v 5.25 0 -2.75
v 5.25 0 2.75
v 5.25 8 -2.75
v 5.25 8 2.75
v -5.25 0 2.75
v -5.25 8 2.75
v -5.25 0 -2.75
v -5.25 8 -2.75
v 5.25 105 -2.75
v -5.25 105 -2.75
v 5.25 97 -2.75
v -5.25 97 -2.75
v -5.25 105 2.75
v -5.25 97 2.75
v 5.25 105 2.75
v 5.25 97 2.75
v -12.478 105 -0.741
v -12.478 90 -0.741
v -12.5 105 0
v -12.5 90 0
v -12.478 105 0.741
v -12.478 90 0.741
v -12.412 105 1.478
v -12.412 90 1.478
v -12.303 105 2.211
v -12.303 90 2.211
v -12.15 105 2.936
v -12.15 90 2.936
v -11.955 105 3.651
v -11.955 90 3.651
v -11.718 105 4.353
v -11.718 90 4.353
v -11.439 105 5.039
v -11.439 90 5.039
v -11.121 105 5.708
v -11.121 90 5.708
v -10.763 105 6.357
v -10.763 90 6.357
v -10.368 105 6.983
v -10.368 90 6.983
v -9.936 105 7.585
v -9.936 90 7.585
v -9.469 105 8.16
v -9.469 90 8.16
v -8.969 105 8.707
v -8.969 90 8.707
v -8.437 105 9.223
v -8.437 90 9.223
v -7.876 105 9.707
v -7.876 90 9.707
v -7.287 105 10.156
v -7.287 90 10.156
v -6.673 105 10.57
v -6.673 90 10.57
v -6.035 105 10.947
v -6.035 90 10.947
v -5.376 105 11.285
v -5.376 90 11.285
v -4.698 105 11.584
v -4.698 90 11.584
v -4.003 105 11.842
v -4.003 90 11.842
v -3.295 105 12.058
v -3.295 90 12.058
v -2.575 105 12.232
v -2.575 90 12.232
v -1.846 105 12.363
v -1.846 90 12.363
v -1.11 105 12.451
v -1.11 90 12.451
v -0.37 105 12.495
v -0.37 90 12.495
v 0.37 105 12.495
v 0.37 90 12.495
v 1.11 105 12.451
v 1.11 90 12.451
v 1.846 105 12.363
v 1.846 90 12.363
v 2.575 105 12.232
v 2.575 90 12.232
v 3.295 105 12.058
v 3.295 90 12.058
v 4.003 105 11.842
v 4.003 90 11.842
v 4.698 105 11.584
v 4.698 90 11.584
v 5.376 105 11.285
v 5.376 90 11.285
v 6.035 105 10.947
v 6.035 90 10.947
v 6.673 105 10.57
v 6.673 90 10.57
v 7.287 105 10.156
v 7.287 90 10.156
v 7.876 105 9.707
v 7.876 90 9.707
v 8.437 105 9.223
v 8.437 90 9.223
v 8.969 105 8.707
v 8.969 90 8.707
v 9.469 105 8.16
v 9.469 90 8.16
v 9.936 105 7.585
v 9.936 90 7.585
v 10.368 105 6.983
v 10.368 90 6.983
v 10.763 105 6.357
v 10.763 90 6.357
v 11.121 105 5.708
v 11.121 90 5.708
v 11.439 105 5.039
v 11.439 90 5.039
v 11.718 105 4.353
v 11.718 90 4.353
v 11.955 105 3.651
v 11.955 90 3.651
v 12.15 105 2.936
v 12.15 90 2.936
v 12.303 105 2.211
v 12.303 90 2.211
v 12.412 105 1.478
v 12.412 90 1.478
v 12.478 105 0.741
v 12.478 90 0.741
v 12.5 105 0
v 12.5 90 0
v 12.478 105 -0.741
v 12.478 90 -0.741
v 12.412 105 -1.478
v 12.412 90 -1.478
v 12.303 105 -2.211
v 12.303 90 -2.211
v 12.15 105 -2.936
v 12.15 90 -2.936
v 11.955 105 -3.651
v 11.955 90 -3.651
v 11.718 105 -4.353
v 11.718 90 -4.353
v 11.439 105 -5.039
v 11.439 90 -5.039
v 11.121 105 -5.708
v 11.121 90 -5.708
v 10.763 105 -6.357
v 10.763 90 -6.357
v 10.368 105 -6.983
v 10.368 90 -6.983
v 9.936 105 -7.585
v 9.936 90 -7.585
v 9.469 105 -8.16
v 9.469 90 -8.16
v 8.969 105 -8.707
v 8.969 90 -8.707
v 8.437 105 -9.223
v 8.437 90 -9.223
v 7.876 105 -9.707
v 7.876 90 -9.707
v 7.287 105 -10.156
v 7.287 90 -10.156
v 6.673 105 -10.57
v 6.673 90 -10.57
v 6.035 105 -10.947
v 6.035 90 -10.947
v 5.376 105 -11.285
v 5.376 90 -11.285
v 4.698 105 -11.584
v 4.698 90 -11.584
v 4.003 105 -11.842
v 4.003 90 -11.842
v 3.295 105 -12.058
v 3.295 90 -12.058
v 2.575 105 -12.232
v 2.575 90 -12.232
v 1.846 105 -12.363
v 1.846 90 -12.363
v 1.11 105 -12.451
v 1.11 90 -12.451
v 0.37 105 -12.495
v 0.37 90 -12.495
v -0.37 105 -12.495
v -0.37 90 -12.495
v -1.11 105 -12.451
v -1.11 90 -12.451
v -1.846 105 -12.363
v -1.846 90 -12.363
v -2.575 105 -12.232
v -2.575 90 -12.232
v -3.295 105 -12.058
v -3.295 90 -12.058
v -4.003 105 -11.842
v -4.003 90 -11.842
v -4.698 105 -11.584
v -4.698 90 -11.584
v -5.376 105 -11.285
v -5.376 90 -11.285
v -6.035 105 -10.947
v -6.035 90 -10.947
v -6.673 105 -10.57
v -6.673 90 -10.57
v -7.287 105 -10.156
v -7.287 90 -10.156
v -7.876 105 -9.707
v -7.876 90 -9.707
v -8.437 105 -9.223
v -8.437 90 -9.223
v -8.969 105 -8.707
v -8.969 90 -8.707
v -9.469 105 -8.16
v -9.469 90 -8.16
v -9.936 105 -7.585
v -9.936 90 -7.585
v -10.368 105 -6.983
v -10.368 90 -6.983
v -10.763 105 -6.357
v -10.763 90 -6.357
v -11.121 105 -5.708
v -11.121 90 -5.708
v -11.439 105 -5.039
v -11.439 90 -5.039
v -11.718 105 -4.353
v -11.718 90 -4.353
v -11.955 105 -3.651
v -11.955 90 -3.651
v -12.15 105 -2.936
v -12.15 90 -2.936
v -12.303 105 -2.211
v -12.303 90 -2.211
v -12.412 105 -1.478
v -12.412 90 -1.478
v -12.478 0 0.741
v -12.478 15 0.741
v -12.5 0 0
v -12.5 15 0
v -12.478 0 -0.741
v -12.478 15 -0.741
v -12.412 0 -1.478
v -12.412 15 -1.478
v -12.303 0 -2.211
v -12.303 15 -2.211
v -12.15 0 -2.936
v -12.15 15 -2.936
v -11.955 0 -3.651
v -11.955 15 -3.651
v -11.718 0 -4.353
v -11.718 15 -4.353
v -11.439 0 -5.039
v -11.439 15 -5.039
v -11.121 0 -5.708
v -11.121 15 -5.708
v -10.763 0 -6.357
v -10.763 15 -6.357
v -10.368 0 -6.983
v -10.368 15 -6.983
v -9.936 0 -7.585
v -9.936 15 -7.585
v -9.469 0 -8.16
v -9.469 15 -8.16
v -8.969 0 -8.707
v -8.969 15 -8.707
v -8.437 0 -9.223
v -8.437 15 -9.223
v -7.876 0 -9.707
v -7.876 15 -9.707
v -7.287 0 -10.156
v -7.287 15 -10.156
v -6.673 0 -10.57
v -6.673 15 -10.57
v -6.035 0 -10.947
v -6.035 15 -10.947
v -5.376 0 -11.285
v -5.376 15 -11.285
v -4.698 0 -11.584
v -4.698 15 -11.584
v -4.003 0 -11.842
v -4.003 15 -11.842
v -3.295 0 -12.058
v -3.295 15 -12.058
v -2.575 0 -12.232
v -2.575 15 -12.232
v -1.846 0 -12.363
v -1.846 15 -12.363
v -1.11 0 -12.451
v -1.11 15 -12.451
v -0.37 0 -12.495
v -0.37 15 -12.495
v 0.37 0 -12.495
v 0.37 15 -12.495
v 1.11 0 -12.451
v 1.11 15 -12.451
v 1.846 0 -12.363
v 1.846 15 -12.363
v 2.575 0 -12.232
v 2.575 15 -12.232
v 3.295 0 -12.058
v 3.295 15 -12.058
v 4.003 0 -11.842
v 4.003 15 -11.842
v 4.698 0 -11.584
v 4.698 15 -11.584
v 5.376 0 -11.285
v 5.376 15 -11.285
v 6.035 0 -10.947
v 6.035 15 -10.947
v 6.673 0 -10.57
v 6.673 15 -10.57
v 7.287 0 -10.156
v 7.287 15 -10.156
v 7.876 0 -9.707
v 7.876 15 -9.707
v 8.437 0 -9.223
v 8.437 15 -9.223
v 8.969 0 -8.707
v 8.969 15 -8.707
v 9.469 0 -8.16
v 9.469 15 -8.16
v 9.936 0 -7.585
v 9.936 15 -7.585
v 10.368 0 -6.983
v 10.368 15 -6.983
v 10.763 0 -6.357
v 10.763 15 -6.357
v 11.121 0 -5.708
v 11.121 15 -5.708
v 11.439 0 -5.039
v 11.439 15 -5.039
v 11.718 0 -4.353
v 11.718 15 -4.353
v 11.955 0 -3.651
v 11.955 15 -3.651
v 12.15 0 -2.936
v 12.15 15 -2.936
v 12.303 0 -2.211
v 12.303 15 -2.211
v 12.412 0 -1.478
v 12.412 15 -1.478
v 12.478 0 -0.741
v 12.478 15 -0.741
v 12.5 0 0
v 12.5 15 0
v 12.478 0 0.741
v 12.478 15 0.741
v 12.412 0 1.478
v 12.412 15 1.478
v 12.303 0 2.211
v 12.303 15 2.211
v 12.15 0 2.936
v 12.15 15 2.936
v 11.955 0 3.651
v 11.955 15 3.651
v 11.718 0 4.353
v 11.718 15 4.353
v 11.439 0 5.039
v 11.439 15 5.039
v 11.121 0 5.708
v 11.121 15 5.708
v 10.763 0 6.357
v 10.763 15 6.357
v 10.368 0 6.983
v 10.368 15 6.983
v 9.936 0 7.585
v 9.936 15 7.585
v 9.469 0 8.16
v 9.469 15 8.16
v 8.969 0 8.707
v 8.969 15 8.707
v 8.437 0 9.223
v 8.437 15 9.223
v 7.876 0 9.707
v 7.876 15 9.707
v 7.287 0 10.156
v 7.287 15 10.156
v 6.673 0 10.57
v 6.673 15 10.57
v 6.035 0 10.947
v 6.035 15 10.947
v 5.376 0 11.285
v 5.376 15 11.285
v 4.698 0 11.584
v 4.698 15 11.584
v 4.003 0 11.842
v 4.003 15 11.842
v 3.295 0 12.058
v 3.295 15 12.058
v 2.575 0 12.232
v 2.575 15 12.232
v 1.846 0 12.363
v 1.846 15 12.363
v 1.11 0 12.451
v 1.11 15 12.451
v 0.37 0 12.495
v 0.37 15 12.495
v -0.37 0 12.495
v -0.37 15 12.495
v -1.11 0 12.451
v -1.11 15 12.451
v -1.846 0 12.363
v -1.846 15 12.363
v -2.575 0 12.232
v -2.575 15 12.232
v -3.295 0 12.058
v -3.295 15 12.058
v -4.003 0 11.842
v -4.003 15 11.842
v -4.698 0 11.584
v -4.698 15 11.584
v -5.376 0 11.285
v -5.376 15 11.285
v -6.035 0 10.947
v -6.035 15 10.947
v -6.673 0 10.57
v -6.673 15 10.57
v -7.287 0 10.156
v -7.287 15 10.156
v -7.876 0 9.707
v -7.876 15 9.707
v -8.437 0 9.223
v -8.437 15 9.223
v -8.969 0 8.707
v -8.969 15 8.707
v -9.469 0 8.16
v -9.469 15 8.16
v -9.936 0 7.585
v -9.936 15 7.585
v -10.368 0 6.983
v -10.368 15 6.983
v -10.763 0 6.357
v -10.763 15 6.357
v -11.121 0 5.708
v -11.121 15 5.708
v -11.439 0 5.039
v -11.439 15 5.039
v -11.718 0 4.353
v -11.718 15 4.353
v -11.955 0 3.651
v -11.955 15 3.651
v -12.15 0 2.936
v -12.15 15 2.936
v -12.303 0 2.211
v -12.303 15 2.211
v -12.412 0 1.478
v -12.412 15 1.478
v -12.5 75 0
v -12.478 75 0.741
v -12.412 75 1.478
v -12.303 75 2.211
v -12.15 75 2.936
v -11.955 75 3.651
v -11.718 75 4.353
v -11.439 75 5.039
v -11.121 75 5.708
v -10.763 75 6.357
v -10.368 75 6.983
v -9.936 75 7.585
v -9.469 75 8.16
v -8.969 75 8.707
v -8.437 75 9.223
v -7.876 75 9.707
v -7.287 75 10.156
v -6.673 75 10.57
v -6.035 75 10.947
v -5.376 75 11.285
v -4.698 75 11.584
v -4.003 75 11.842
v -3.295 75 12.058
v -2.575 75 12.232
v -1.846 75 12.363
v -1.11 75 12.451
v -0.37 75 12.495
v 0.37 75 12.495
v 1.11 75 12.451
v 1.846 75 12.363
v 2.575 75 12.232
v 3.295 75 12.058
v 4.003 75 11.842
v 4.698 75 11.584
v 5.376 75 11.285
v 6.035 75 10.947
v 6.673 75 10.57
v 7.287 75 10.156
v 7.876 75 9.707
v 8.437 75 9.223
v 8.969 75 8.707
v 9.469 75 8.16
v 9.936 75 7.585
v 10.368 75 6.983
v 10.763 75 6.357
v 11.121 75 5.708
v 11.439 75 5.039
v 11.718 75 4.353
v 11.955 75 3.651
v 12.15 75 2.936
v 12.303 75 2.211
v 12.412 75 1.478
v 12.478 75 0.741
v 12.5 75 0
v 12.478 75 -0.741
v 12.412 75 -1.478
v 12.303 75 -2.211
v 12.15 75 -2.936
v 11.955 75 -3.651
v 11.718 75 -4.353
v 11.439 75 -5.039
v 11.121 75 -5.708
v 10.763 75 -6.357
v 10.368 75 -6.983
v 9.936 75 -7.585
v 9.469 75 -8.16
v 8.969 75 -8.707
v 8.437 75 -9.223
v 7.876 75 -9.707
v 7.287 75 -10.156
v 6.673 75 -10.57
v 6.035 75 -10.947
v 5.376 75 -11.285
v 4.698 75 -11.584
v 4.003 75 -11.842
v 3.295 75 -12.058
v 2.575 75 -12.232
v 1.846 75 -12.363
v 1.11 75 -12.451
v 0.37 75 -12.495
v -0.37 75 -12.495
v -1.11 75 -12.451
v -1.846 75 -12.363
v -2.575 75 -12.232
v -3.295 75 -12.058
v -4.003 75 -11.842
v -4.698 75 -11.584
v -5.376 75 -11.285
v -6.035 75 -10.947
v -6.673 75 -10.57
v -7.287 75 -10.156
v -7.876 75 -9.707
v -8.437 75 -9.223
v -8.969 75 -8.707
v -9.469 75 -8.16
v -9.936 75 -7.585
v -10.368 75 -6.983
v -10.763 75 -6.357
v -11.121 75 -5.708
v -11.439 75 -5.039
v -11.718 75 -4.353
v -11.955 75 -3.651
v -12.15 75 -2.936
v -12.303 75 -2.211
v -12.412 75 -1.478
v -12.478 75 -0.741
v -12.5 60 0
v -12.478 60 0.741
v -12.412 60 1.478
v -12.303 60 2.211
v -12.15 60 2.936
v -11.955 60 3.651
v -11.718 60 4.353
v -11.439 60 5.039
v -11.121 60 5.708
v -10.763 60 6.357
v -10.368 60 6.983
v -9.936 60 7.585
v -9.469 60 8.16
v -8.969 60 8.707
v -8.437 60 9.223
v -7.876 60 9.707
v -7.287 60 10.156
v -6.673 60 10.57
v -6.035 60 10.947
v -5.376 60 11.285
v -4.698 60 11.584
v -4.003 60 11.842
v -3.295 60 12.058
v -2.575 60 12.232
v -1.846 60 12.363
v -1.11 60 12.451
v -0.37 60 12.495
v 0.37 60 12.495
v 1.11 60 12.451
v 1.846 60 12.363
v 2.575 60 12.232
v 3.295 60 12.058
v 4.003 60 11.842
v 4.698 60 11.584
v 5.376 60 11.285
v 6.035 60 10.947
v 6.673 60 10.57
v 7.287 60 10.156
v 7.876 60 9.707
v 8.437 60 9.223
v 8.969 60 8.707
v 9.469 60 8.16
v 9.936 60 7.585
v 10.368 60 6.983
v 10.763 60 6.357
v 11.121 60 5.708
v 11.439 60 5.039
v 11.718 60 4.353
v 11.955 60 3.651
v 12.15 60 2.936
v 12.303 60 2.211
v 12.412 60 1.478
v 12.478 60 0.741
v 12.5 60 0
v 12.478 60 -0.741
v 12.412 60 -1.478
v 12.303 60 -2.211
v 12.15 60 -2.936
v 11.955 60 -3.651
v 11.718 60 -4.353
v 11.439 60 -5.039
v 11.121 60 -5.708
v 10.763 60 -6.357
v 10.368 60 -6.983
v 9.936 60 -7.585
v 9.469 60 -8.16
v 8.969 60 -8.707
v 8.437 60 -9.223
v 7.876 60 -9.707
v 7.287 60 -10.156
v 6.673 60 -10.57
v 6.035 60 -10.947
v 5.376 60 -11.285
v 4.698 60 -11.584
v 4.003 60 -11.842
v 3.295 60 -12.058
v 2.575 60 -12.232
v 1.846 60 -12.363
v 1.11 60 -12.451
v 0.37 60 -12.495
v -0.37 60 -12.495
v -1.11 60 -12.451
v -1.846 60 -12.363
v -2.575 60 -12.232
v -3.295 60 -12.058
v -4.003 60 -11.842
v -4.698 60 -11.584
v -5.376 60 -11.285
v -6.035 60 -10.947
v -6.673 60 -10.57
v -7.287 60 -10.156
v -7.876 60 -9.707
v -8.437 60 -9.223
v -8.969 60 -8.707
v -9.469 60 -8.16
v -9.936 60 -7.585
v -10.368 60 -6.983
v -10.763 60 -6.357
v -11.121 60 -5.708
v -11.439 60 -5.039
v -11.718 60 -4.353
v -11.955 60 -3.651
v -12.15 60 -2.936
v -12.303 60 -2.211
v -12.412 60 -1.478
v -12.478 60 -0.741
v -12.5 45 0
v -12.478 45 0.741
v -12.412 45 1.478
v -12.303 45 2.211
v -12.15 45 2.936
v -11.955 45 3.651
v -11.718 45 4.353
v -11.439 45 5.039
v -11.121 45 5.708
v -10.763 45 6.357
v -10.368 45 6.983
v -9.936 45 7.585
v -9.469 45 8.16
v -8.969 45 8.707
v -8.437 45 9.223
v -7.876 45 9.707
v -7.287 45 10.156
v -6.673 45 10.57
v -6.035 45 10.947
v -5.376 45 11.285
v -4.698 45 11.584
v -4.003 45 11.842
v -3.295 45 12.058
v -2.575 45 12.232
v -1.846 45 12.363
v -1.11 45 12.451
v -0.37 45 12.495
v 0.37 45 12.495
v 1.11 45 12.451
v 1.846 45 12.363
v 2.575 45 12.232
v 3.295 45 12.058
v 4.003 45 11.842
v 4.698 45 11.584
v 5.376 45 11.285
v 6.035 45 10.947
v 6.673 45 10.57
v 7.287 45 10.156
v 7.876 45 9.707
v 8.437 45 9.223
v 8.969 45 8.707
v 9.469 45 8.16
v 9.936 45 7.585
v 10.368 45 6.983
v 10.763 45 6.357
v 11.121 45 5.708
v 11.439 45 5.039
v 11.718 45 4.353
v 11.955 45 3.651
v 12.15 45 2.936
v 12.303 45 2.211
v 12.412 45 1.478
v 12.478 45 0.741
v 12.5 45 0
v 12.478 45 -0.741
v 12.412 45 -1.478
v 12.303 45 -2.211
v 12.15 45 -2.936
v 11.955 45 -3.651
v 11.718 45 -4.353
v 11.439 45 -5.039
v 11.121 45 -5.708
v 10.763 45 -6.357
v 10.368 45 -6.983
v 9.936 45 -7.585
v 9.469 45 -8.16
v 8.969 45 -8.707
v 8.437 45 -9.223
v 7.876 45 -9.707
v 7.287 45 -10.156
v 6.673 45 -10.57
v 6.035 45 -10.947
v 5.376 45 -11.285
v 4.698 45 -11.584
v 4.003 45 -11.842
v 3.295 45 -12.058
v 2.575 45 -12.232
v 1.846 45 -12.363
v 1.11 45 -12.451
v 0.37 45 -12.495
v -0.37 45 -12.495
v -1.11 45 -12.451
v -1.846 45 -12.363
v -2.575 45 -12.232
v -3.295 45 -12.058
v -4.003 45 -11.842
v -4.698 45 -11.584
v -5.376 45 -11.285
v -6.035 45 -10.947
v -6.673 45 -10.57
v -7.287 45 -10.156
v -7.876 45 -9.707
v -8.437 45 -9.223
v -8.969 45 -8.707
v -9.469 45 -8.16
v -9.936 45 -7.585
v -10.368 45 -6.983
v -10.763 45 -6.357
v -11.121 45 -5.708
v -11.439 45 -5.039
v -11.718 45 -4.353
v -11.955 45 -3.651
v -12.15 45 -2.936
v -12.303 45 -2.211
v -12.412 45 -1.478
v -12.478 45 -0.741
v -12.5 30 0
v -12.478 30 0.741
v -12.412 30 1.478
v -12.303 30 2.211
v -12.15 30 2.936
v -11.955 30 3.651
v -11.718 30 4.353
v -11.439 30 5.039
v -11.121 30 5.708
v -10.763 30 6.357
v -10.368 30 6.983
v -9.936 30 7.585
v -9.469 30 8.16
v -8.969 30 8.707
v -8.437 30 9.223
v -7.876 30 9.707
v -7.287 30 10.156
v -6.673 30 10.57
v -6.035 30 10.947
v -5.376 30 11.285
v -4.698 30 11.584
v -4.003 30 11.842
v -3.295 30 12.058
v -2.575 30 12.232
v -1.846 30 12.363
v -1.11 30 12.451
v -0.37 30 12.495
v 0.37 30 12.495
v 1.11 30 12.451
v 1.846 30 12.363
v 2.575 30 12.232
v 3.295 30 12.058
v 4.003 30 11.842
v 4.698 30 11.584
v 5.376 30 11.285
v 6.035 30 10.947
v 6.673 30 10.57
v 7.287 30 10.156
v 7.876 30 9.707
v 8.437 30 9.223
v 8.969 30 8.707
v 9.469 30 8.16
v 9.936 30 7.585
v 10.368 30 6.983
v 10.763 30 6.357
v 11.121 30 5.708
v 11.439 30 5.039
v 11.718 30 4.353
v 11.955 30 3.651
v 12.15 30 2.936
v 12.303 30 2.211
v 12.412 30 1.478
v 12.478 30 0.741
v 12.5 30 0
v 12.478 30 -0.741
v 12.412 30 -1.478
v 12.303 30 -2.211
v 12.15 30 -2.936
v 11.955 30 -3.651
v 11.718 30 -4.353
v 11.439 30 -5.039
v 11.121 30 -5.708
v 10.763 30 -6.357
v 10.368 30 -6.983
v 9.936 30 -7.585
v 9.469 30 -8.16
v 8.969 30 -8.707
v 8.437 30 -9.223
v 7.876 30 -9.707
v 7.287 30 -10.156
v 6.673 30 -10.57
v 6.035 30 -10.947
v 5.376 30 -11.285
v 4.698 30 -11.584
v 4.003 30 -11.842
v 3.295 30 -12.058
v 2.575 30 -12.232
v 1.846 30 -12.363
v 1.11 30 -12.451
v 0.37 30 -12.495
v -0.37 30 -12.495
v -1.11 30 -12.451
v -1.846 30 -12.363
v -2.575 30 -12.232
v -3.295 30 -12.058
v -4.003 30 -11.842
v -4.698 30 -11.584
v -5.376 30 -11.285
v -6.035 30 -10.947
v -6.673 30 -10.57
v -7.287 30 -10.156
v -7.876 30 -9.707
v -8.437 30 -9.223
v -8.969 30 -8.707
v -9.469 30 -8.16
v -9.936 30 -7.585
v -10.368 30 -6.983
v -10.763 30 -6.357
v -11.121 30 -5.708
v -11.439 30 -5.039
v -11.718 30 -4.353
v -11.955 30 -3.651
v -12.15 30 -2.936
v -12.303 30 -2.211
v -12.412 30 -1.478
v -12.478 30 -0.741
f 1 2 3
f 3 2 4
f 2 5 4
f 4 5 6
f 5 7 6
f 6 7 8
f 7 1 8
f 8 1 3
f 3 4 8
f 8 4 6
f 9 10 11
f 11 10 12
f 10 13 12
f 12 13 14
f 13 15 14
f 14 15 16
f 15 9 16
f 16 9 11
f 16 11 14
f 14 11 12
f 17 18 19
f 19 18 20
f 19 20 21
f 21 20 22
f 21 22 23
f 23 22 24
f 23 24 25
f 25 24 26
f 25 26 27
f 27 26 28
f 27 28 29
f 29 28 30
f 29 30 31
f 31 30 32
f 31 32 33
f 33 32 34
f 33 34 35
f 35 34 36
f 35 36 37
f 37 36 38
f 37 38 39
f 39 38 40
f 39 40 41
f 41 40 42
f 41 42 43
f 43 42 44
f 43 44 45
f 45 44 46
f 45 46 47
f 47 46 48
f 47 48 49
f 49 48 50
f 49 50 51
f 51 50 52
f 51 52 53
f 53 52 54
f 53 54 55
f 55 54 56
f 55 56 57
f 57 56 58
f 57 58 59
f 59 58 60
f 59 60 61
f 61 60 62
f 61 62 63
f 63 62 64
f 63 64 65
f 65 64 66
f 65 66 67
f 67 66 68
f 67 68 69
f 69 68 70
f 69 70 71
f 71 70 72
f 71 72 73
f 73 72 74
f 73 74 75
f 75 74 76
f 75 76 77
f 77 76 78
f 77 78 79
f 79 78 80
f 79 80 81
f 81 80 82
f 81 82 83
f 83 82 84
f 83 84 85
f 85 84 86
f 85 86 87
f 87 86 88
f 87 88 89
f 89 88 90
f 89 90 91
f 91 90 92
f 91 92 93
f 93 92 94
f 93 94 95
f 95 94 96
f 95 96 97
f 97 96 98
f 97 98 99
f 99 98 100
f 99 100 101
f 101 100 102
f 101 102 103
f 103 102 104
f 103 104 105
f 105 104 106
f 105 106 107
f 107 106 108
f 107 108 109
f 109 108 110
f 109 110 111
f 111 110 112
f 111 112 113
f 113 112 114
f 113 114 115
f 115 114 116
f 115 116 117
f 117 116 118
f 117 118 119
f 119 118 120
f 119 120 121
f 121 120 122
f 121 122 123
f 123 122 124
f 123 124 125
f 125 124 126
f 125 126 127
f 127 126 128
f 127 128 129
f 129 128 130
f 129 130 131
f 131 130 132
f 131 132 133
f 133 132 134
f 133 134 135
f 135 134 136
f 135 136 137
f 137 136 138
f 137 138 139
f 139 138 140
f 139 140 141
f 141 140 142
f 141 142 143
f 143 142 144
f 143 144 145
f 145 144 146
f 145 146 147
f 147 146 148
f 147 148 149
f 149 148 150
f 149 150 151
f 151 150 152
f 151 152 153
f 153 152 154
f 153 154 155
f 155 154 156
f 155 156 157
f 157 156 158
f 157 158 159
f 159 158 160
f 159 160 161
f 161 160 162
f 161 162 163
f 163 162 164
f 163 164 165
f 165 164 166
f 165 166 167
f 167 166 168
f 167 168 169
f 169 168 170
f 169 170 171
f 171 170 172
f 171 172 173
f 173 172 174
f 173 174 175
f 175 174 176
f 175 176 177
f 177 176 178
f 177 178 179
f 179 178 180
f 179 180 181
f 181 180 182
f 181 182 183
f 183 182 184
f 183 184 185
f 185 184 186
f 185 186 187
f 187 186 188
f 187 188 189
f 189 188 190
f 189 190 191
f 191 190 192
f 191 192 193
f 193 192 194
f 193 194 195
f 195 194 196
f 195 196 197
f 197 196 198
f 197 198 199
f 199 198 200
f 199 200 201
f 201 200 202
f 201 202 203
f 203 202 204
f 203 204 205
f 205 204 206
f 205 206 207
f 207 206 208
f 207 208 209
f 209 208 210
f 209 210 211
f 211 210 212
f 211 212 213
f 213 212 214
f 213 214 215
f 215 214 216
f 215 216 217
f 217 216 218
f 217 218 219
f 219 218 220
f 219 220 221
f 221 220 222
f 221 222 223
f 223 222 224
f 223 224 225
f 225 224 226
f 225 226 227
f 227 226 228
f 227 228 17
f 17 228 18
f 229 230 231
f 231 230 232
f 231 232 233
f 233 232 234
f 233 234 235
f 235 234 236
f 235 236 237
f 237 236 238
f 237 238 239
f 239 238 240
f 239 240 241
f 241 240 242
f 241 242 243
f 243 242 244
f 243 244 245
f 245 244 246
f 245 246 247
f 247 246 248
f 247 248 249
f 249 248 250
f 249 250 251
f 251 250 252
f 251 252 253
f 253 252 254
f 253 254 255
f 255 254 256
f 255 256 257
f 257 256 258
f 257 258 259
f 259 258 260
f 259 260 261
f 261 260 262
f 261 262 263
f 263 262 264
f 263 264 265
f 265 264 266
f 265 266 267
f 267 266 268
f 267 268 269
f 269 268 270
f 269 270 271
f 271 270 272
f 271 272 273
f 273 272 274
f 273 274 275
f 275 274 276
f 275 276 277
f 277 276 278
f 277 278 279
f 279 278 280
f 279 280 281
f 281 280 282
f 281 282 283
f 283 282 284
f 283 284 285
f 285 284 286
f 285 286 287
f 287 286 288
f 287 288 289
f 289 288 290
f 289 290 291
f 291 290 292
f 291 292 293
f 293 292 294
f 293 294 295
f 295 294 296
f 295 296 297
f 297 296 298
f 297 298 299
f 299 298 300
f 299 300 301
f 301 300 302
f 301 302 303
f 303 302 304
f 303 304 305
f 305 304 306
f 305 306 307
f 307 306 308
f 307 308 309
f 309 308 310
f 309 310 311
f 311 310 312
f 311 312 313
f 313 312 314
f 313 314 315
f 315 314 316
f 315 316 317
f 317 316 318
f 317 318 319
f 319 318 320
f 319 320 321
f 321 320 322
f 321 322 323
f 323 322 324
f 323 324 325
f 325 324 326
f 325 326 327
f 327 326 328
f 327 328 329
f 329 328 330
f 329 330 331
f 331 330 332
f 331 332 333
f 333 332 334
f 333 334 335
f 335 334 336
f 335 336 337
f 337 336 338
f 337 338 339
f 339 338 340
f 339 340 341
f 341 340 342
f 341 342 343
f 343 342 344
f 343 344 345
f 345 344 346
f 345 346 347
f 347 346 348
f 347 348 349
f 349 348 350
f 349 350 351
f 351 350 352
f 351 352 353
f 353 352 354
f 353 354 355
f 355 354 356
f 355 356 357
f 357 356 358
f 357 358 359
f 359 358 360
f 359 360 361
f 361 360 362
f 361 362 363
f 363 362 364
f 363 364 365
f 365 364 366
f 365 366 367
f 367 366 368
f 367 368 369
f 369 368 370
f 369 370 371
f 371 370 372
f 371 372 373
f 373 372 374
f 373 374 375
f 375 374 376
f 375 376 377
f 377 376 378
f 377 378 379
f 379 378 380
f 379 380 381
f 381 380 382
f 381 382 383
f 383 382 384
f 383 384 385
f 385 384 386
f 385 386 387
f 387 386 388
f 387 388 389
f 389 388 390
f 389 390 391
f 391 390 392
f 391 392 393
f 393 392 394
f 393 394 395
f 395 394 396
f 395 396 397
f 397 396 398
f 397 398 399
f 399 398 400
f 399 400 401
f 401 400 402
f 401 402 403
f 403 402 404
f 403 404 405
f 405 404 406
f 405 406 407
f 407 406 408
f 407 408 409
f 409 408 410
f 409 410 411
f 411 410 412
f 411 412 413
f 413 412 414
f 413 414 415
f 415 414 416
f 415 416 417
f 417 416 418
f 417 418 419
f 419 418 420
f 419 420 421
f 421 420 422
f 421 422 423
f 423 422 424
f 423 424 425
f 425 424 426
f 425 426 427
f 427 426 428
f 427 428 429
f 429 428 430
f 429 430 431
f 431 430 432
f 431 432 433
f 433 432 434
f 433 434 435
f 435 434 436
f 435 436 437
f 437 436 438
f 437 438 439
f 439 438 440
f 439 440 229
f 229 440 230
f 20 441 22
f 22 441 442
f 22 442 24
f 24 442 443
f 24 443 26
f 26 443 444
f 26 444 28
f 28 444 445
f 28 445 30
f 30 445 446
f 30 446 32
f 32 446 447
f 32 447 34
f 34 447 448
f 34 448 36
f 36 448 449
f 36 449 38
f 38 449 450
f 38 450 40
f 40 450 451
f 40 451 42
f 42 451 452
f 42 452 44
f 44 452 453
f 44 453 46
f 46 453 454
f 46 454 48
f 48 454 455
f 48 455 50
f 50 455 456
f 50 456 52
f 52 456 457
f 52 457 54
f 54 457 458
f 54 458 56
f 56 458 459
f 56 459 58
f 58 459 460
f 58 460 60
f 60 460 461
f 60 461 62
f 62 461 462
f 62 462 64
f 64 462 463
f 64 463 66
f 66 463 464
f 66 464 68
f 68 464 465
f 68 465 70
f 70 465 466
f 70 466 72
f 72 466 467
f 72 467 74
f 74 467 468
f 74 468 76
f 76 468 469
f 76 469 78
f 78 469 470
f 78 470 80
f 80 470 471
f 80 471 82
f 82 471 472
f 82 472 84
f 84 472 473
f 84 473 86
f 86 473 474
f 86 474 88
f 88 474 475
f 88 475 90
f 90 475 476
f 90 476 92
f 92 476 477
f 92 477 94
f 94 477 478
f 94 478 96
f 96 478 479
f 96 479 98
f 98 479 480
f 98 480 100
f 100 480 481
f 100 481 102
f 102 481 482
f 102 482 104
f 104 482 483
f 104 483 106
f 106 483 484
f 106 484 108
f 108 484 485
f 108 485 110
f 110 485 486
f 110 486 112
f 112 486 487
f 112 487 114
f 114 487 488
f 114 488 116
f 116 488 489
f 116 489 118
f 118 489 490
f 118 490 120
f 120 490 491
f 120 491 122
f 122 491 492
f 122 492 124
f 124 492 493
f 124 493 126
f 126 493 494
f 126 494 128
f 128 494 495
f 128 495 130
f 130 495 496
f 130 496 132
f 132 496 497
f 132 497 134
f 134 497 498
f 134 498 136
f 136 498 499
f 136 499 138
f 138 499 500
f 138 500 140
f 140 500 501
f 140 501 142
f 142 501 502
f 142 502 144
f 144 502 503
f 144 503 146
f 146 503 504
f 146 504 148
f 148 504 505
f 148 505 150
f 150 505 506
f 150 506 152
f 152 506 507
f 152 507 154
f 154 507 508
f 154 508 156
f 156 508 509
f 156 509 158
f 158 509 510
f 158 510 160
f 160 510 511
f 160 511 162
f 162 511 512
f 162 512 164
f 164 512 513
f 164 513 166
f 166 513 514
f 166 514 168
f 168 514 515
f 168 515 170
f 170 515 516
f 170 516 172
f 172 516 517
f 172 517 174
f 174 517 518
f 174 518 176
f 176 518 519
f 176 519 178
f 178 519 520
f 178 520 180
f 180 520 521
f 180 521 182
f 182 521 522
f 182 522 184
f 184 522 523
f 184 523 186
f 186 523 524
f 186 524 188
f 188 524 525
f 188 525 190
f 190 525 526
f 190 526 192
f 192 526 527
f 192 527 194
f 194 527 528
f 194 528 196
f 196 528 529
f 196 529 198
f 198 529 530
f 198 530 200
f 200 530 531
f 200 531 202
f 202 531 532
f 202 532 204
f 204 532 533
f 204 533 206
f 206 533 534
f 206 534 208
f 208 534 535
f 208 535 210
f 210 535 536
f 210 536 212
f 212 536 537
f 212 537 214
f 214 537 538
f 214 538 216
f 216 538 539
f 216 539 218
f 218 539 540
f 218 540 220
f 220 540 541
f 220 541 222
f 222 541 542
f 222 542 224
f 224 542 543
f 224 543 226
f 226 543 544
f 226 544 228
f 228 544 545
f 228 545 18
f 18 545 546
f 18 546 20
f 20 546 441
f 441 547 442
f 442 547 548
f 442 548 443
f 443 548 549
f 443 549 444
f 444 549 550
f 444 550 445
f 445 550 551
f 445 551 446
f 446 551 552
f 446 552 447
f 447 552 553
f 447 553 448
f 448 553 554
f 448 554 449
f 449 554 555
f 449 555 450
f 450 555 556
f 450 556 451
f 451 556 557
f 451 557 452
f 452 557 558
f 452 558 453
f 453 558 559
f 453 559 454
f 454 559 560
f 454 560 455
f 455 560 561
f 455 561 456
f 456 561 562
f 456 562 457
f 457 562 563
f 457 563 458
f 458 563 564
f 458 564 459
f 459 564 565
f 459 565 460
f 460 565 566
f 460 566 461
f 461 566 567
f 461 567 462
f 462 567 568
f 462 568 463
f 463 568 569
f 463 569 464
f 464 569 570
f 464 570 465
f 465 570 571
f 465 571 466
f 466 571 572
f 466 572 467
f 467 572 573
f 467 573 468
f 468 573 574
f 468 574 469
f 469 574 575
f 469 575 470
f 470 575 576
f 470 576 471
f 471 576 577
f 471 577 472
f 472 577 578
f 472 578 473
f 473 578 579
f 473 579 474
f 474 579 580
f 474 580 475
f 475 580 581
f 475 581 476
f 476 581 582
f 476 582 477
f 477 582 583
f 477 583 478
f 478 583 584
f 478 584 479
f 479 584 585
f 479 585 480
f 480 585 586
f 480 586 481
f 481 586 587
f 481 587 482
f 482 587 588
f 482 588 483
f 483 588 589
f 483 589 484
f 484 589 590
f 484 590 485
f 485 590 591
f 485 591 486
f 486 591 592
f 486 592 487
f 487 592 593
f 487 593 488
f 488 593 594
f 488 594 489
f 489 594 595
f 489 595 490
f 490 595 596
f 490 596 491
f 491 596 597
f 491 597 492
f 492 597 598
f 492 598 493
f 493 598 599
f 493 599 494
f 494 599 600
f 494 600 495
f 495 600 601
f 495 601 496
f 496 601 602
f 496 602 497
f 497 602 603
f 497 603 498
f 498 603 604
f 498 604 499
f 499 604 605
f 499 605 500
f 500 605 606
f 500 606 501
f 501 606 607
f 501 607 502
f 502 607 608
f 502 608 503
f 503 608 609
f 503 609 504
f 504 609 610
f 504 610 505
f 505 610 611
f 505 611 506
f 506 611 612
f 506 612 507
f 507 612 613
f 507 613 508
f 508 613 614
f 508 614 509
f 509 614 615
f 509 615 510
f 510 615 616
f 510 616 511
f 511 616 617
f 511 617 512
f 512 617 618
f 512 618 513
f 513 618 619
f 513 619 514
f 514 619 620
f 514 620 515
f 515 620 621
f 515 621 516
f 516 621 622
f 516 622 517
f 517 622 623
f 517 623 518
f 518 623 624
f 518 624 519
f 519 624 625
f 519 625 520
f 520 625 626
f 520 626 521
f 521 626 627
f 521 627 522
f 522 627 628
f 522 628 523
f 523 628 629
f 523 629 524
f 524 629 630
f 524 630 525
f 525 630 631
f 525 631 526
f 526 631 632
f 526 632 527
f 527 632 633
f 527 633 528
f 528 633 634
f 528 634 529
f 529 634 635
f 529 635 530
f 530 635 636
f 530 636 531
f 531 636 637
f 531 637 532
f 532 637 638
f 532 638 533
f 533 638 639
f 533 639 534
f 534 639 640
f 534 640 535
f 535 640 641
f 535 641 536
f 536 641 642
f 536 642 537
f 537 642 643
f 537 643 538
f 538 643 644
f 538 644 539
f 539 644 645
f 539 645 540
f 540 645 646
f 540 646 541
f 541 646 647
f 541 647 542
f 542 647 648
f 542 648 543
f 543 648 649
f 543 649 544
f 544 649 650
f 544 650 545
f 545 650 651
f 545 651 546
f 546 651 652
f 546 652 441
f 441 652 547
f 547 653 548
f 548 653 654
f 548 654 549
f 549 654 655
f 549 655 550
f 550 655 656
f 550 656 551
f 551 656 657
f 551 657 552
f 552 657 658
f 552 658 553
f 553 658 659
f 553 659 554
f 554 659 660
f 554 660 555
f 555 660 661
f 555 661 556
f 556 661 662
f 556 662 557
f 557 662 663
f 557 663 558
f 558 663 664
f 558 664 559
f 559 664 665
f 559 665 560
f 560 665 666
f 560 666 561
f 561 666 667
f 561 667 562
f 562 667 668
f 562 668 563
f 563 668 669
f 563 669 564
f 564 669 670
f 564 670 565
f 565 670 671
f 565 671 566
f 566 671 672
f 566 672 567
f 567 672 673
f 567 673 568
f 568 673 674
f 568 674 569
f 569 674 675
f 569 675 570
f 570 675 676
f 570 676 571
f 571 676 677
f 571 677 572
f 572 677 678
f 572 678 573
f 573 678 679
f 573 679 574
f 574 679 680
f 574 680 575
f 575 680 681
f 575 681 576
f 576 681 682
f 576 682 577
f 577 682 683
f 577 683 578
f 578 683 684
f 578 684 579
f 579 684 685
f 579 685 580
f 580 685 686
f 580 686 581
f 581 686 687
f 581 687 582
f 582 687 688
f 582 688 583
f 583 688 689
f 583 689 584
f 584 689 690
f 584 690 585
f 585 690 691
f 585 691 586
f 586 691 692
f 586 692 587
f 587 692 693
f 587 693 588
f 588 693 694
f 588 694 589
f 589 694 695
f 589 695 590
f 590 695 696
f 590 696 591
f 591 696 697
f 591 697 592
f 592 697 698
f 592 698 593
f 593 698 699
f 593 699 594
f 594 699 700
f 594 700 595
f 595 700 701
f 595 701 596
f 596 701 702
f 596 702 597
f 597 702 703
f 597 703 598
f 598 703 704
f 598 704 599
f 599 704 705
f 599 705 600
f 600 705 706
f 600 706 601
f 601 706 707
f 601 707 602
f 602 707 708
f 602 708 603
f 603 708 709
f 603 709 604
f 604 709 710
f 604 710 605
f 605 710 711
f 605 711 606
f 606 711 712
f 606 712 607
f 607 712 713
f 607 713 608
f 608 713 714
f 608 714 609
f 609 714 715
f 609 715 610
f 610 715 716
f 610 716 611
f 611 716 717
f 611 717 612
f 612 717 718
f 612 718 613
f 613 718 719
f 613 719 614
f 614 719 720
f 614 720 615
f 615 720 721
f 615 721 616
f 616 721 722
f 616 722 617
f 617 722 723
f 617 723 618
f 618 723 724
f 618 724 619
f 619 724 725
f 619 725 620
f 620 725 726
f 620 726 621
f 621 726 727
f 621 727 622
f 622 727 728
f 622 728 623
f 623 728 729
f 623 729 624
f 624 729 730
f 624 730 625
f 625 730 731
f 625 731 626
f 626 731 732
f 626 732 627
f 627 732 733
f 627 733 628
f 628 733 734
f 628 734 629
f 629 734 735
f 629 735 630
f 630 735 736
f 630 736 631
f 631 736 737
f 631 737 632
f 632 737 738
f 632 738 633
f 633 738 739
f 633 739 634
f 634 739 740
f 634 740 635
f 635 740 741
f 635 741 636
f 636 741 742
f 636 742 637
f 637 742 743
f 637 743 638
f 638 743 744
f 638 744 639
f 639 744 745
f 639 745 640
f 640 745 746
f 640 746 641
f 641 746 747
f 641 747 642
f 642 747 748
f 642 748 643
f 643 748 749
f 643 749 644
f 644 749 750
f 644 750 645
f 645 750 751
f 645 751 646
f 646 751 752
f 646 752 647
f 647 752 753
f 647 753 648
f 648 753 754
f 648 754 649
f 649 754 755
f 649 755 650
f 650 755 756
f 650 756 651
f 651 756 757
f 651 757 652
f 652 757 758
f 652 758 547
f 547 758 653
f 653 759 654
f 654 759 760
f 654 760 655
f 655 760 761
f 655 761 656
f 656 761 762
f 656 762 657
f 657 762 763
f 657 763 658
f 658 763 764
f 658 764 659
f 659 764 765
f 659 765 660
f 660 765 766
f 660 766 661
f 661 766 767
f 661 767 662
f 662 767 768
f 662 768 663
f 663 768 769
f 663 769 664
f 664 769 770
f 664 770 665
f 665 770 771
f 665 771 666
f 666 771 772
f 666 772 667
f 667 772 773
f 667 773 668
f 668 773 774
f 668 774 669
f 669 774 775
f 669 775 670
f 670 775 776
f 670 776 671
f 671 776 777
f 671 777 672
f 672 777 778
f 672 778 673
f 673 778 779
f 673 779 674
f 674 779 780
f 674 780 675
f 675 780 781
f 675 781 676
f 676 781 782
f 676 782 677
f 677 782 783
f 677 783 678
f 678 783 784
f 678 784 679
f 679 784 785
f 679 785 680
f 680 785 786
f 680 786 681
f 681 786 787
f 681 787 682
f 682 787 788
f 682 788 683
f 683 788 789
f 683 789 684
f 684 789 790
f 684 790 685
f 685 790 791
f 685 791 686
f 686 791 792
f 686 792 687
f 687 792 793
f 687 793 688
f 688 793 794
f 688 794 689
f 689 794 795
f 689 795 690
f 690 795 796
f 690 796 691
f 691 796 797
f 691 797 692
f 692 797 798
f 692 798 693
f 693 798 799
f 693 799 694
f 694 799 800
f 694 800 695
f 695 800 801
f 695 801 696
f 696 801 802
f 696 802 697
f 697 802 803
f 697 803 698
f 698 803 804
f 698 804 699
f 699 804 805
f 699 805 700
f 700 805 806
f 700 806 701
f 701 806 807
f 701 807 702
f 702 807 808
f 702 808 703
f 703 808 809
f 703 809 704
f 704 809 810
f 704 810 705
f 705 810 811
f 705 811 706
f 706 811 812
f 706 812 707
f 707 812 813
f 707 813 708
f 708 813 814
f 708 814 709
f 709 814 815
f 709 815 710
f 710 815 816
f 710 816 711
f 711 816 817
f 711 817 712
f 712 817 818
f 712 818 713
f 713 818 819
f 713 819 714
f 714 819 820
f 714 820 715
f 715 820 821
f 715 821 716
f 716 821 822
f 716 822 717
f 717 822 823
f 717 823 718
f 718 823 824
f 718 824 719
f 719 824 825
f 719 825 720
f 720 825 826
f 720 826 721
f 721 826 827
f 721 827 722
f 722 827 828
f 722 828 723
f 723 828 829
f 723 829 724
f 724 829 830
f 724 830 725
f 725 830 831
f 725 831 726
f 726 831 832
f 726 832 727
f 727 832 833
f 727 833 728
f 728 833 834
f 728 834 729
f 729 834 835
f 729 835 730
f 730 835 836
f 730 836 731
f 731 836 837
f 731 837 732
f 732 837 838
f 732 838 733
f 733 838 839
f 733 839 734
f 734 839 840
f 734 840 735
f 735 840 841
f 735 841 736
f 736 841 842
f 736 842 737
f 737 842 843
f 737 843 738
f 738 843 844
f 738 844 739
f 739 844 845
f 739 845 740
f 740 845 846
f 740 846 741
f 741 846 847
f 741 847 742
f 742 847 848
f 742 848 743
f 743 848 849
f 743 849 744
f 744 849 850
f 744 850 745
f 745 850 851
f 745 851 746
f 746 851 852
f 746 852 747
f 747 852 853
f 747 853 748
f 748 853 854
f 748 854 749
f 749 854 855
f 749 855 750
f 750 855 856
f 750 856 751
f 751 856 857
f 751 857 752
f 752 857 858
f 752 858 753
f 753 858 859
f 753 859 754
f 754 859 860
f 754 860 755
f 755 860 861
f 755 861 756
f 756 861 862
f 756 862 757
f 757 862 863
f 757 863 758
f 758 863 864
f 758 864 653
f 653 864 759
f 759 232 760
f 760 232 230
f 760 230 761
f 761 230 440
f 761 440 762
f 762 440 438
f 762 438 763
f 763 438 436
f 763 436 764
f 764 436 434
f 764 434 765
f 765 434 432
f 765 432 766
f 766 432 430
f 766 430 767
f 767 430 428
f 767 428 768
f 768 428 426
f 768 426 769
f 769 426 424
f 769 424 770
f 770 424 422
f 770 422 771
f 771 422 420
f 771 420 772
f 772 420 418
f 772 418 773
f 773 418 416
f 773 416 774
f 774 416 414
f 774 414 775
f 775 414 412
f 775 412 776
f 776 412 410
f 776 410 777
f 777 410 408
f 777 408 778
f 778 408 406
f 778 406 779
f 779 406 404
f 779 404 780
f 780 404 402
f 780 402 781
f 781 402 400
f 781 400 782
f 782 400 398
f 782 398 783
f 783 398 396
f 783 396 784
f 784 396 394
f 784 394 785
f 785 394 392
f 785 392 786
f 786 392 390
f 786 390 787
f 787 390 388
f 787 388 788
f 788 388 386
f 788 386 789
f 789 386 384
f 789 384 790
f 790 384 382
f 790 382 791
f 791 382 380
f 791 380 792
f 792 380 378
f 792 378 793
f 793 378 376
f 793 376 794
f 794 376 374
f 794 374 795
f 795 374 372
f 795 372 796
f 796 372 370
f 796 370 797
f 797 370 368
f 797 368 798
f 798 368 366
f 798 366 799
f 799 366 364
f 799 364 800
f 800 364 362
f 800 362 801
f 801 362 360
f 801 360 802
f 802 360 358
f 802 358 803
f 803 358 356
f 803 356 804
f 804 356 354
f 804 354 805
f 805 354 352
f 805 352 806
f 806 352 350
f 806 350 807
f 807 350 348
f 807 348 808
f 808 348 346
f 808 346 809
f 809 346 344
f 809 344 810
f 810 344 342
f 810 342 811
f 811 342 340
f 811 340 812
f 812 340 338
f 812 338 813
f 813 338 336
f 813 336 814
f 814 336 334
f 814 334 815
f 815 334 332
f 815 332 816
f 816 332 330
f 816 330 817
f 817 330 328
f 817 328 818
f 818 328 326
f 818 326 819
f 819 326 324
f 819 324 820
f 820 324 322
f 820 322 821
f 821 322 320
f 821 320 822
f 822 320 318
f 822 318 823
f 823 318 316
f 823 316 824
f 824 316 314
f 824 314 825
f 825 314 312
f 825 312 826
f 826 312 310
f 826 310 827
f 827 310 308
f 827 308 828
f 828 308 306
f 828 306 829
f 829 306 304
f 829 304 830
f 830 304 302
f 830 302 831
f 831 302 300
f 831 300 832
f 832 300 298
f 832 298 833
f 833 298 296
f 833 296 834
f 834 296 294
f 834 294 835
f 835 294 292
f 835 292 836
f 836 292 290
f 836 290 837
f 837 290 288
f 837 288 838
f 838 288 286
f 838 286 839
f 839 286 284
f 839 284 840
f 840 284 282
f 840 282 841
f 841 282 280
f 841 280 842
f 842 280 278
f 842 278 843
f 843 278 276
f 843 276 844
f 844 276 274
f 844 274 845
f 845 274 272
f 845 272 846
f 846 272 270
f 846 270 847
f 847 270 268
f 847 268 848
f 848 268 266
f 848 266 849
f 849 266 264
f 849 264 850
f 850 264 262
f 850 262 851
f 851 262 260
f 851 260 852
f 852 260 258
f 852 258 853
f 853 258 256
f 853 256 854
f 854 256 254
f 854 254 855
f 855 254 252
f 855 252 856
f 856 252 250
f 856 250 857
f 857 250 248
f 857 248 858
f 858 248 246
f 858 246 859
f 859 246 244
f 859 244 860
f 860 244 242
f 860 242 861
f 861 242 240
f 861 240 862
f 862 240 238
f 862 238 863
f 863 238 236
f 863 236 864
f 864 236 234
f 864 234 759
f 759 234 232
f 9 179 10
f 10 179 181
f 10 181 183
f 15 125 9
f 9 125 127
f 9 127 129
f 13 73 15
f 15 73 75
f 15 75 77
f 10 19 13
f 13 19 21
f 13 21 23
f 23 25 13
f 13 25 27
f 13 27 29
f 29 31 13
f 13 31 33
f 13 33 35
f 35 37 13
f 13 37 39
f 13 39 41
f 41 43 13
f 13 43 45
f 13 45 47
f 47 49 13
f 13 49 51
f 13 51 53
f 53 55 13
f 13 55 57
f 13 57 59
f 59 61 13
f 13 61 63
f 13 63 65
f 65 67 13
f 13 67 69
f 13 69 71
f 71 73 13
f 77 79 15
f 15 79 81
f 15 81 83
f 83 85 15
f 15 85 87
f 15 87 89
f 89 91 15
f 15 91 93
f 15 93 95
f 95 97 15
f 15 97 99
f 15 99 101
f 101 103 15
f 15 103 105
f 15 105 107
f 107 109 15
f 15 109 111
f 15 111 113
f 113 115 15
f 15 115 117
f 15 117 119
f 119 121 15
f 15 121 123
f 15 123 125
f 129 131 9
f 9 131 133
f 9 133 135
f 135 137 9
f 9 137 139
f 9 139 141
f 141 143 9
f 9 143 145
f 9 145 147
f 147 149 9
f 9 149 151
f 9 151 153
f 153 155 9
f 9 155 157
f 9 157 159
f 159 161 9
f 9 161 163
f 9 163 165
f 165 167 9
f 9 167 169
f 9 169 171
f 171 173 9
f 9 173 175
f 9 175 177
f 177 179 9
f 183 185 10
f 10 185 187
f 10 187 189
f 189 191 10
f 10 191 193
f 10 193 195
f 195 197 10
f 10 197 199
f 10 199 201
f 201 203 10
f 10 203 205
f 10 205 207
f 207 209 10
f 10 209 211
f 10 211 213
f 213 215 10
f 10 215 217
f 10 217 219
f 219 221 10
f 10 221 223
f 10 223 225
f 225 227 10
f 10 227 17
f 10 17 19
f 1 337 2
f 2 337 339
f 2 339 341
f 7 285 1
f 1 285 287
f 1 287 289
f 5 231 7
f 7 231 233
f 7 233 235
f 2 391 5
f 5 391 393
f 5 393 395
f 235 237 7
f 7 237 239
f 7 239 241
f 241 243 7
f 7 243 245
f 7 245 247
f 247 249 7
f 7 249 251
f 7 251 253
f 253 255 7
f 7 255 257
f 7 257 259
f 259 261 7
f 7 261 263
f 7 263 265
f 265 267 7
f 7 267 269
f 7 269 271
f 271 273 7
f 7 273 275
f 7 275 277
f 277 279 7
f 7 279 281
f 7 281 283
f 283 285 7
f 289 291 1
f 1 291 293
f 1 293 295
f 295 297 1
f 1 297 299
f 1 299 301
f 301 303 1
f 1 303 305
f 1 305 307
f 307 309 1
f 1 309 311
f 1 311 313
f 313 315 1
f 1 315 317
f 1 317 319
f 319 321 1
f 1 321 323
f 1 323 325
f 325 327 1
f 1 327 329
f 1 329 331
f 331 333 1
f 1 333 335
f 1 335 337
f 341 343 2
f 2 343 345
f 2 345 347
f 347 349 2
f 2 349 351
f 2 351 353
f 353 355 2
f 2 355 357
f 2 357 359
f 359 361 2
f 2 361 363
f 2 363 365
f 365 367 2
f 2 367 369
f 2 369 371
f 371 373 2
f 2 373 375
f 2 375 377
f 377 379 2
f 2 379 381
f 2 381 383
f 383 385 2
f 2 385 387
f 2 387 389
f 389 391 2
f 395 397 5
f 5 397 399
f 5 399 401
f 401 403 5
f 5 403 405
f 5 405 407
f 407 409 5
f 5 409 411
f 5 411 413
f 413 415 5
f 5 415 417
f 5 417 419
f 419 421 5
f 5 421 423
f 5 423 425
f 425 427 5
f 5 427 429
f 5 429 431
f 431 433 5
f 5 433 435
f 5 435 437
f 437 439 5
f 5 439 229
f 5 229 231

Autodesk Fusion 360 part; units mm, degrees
sketch "Sketch1" plane through (0, 0, 0) normal (0, 1, 0) x (1, 0, 0)
  circle A0 centre (0, 0) radius 12.5
  dimension "d1" = 25
extrude "Extrude1" add sketch "Sketch1" along normal blind 105
sketch "Sketch2" plane through (0, 105, 0) normal (0, 1, 0) x (-1, 0, 0)
  circle A0 centre (0, 0) radius 12.5
  line L0 (-5.25, -2.75) -> (5.25, -2.75)
  line L1 (5.25, -2.75) -> (5.25, 2.75)
  line L2 (5.25, 2.75) -> (-5.25, 2.75)
  line L3 (-5.25, 2.75) -> (-5.25, -2.75)
  line L4 (-5.25, -2.75) -> (5.25, 2.75) construction
  line L5 (5.25, -2.75) -> (-5.25, 2.75) construction
  dimension "d4" = 10.5
  dimension "d5" = 5.5
extrude "Extrude2" cut sketch "Sketch2" against normal blind 8 contours L0 L1 L2 L3
sketch "Sketch3" plane through (0, 0, 0) normal (0, -1, 0) x (1, 0, 0)
  circle A0 centre (0, 0) radius 12.5
extrude "Extrude3" cut sketch "Sketch2" along normal blind 8 from surface at -105 contours L0 L1 L2 L3
